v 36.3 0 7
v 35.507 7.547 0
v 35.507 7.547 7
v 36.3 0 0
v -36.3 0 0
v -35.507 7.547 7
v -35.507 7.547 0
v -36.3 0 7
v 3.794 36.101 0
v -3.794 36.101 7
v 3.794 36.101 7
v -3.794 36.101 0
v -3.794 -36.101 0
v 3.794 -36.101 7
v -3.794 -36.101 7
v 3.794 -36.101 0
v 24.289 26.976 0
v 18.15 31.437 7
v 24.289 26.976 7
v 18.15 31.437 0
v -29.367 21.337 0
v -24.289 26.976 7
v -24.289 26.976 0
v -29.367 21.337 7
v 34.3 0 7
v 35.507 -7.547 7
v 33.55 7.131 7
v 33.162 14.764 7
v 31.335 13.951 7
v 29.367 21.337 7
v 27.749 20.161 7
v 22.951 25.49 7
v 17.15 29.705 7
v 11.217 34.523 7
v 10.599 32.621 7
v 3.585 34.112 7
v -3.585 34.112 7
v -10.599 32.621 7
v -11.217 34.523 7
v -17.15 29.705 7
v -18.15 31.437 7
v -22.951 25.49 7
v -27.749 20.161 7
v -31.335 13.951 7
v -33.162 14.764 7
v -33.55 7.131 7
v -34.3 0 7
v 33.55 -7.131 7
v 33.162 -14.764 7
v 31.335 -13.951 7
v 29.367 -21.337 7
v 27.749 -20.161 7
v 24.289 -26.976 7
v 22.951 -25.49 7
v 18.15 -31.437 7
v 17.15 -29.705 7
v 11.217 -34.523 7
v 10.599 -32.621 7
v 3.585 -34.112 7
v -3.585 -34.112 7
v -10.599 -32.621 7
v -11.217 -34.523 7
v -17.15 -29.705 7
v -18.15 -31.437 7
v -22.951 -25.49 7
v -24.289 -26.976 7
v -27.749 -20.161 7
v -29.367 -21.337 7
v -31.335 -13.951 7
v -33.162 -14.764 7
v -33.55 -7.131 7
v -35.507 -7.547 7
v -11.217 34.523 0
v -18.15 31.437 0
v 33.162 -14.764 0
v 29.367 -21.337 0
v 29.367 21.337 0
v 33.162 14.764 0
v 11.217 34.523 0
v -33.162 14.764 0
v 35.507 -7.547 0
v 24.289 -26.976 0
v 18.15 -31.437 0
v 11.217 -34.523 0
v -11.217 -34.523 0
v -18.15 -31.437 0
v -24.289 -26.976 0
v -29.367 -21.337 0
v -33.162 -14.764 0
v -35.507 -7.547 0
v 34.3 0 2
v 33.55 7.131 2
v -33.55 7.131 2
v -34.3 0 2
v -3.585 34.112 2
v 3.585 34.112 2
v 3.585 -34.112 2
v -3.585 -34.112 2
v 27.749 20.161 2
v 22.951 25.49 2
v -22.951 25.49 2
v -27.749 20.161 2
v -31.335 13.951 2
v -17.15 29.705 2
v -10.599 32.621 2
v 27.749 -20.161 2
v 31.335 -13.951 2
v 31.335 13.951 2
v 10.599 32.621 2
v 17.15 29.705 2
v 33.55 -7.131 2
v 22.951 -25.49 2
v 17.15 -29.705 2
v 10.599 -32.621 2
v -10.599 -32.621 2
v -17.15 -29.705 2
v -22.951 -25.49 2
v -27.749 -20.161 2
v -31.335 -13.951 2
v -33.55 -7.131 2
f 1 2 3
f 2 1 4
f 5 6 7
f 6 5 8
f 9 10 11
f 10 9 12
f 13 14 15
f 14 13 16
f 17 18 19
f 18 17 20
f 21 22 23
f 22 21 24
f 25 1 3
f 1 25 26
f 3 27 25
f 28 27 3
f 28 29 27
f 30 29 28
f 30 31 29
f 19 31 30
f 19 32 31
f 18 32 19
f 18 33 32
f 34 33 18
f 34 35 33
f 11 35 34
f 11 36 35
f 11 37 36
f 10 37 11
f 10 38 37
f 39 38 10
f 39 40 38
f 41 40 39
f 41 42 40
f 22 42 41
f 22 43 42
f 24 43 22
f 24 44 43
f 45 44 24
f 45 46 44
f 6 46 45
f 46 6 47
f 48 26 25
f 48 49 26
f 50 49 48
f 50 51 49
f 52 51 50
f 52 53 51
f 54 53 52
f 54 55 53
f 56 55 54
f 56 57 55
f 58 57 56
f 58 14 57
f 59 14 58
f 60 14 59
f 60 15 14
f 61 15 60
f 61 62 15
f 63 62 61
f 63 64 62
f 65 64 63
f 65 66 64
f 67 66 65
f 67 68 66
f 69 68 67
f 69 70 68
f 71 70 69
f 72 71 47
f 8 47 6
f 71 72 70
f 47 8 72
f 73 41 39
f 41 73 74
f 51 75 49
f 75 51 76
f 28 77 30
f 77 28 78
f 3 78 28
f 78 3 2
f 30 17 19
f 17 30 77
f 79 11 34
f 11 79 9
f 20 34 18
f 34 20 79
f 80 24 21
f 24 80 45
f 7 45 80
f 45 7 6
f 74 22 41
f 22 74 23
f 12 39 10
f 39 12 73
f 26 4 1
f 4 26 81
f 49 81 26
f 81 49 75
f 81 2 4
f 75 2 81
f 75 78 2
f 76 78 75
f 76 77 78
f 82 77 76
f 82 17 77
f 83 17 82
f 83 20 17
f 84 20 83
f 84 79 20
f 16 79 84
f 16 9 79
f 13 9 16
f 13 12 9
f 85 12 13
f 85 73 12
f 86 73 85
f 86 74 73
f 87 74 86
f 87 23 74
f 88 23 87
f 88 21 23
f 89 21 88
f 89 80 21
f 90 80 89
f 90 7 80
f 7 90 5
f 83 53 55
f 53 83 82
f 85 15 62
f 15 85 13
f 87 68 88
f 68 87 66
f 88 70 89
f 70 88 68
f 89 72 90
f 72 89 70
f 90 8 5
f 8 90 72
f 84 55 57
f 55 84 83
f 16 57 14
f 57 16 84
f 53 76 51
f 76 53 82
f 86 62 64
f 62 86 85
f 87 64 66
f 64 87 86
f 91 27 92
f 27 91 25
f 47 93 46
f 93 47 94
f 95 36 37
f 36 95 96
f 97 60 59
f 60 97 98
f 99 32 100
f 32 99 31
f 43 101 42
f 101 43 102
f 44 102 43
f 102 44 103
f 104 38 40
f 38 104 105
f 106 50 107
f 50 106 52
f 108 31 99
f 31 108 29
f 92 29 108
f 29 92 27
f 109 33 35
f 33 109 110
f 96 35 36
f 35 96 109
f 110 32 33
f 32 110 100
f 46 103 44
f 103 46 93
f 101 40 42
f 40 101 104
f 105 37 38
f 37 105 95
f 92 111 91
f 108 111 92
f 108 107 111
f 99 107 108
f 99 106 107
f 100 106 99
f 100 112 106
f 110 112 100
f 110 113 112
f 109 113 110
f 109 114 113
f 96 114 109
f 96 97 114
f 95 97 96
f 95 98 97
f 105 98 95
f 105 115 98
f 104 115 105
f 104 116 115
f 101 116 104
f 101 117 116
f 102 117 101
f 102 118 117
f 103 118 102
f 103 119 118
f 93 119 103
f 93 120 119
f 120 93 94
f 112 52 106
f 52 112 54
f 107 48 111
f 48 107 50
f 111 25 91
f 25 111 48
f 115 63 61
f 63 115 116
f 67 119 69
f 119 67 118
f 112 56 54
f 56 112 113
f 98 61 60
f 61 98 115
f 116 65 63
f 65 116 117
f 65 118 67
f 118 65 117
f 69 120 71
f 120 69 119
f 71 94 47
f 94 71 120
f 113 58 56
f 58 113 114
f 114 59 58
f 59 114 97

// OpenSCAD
// Parameters
// Diameter of the can
d1 = 67.3 + 1.3;
// Inner diameter
d2 = d1 - 0.8;
// Outer diameter of the lid
d0 = d1 + 4;

// Height of the basement
h0 = 2;
// Height of the inner part
h1 = 3;
// Height of the outer part
h2 = 2;

// Overall height of the lid
h = h0 + h1 + h2;

// See http://www.openscad.org/cheatsheet/

module body() {
    cylinder(h = h, d = d0, center = false);
}

module can() {
    cylinder(h = h1 + h2, d = d1, center = false);
}


module lid() {
    difference() {
        body();
        translate([0, 0, h0]) {
            can();
        }
    }
}

lid();
